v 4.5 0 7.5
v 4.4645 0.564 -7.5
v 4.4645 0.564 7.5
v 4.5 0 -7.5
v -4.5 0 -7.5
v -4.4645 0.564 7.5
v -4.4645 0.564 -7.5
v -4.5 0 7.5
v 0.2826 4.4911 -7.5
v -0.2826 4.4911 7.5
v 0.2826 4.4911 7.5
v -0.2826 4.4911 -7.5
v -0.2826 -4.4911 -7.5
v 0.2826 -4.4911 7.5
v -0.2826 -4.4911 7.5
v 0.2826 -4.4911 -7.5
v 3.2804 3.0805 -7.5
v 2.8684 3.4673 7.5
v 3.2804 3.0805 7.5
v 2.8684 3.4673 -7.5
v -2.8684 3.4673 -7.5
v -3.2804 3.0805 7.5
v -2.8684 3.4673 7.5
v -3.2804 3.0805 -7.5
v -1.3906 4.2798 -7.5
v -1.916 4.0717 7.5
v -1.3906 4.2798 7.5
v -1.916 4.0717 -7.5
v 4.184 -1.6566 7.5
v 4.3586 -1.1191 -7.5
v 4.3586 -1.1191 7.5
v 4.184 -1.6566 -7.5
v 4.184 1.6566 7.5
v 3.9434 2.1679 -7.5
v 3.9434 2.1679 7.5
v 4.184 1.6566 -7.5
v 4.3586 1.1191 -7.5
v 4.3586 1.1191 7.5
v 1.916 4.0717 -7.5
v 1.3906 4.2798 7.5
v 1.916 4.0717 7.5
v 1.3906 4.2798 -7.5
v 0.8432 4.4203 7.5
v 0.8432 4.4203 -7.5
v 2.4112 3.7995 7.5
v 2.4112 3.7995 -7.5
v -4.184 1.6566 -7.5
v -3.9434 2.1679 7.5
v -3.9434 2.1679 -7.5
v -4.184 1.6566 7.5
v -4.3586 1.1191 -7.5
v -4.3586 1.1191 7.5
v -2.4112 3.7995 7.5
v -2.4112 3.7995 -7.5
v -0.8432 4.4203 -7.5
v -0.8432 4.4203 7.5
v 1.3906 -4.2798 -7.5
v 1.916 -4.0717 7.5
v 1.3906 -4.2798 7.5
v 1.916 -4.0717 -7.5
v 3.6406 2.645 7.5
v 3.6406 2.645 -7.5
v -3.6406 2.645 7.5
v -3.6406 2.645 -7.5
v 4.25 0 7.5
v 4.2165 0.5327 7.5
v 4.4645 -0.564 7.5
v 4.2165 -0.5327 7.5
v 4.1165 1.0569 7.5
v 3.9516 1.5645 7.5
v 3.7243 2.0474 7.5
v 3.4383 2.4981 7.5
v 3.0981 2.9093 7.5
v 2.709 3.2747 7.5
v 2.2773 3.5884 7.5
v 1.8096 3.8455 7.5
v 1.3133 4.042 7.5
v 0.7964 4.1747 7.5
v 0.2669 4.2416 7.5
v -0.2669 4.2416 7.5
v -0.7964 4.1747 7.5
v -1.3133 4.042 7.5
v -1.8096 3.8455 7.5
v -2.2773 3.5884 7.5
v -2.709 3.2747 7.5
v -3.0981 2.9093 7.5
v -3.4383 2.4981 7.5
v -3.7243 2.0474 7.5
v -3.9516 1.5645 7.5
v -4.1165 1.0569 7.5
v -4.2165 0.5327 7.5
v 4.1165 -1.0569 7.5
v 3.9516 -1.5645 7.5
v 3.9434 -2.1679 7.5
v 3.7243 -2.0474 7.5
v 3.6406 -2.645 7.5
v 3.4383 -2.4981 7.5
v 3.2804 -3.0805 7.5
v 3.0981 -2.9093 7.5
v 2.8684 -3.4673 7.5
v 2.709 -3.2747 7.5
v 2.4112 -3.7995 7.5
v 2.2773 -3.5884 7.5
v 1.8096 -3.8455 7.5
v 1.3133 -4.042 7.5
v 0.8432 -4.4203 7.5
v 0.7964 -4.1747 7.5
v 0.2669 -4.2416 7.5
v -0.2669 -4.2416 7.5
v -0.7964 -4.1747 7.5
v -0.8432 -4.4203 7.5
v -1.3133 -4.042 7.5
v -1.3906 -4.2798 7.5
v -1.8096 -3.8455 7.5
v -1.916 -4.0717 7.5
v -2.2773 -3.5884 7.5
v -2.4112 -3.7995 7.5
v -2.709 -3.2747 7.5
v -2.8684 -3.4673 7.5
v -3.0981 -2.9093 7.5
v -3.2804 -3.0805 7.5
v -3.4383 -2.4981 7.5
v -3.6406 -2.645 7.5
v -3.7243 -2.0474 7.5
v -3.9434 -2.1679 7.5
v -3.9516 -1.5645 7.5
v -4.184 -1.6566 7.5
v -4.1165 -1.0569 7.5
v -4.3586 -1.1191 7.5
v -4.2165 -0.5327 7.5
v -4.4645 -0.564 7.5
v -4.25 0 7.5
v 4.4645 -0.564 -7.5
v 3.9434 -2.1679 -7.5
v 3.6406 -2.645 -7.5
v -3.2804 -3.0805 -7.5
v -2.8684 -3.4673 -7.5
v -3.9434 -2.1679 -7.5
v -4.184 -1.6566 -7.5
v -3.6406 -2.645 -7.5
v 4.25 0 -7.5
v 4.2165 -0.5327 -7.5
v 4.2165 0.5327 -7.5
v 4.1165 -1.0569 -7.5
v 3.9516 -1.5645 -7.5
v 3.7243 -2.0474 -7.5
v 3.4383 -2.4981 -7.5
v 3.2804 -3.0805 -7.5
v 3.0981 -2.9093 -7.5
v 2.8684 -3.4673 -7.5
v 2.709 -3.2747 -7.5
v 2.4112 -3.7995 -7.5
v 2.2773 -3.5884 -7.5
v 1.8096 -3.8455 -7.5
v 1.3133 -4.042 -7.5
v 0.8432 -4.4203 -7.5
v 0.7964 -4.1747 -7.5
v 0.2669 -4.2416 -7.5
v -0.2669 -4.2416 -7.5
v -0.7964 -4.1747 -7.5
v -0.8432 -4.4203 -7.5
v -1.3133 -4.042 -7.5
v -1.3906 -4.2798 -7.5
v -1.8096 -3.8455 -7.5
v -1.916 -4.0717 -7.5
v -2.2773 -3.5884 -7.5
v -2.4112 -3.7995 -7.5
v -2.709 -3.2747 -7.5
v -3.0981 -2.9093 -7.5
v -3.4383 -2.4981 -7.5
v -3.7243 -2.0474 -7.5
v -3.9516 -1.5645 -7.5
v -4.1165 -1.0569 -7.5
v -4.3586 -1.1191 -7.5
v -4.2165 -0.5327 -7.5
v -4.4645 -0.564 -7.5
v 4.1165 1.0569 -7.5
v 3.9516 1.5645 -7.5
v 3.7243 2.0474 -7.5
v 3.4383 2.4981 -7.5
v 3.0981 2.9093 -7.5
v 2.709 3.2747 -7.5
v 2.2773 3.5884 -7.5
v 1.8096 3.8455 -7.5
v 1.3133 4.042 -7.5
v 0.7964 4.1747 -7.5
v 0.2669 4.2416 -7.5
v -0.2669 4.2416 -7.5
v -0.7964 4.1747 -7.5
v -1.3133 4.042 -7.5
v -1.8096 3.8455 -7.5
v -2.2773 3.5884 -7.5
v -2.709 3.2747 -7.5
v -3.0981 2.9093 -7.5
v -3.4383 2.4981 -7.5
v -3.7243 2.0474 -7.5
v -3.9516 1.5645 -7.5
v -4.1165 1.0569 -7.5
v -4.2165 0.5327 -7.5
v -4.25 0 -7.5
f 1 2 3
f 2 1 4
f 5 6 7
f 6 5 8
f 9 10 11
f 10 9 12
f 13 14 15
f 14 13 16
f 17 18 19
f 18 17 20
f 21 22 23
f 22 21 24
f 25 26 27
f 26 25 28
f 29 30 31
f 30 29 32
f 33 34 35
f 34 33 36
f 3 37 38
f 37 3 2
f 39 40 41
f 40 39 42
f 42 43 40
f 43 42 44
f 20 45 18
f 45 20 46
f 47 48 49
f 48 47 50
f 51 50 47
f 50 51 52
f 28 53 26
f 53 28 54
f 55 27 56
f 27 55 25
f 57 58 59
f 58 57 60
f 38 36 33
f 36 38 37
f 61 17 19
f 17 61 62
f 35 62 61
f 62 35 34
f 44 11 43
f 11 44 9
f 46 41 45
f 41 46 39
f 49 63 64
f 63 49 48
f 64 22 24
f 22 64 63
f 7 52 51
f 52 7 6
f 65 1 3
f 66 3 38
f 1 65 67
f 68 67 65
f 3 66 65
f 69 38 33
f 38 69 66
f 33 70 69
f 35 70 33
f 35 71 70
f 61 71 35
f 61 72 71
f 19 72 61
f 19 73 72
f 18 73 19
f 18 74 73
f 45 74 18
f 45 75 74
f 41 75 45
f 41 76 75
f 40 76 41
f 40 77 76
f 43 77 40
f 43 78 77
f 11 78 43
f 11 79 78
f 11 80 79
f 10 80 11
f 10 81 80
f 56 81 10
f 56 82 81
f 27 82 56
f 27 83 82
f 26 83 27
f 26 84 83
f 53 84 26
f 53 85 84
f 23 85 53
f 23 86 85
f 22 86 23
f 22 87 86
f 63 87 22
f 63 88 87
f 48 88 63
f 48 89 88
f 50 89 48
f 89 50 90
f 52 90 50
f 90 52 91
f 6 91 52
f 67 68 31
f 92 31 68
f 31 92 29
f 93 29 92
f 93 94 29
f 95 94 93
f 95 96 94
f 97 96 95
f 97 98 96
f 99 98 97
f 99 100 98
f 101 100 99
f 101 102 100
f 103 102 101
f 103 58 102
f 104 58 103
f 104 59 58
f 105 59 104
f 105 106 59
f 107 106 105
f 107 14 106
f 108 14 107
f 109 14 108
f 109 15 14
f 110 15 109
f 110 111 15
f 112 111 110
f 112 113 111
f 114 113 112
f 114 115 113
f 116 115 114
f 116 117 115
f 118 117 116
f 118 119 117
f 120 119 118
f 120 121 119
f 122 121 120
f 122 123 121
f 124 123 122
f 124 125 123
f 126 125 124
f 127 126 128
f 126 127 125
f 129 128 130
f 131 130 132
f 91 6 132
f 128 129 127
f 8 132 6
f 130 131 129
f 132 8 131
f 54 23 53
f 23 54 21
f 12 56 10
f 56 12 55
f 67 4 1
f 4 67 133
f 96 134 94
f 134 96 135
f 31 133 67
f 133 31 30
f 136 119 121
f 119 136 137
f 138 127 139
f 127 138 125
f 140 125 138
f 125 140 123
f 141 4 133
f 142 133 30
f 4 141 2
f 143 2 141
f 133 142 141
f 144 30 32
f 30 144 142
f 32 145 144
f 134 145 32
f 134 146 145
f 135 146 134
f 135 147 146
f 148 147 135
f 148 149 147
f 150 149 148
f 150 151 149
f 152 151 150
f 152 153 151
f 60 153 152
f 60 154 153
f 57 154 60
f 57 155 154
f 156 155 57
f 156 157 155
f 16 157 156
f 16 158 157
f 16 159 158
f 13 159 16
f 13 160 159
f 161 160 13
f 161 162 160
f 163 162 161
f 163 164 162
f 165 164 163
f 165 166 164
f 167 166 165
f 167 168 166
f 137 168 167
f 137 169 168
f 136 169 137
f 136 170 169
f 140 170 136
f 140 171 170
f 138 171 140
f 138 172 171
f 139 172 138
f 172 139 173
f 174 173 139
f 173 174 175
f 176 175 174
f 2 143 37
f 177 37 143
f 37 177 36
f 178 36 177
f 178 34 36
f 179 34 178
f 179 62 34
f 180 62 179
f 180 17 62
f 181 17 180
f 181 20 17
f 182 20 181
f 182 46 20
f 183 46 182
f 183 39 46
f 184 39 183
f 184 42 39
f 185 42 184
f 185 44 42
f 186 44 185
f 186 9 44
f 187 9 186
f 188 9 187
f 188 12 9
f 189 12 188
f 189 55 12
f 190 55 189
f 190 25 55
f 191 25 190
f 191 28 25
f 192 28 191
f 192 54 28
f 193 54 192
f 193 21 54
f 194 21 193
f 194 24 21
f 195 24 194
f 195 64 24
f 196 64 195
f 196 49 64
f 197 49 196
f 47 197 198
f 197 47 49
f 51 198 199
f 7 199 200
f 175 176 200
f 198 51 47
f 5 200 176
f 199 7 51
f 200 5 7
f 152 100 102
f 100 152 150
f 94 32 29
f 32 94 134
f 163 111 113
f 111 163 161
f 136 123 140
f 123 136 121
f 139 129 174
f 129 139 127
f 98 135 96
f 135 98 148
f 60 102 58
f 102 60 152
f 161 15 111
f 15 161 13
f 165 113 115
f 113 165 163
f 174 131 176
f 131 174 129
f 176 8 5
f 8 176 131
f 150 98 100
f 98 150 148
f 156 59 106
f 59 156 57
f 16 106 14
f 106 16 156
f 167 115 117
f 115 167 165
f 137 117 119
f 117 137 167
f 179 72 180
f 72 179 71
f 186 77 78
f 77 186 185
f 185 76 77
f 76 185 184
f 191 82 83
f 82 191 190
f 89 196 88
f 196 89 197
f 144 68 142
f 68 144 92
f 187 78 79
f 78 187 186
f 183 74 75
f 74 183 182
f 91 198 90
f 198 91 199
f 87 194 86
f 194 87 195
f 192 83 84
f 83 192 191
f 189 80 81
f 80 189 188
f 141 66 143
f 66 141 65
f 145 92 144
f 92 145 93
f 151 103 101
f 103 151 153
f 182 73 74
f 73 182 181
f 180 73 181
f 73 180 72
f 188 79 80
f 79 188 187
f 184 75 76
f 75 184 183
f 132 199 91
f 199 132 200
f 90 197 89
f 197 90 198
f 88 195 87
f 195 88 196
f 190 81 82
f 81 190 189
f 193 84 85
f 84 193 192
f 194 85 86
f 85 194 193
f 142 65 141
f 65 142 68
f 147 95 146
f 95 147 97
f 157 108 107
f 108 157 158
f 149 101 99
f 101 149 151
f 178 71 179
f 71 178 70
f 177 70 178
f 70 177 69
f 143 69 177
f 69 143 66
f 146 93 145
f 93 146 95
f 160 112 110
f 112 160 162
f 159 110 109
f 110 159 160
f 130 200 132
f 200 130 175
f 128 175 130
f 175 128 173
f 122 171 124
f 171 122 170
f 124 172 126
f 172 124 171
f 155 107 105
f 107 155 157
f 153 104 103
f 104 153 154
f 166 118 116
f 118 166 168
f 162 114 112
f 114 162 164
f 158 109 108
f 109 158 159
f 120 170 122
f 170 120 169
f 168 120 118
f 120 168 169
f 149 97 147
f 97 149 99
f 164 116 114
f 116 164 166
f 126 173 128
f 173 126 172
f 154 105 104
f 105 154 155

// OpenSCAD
$fn = 50;


difference() {
	union() {
		translate(v = [0, 0, -7.5000000000]) {
			cylinder(h = 15, r = 4.5000000000);
		}
	}
	union() {
		translate(v = [0, 0, -100.0000000000]) {
			cylinder(h = 200, r = 4.2500000000);
		}
	}
}
